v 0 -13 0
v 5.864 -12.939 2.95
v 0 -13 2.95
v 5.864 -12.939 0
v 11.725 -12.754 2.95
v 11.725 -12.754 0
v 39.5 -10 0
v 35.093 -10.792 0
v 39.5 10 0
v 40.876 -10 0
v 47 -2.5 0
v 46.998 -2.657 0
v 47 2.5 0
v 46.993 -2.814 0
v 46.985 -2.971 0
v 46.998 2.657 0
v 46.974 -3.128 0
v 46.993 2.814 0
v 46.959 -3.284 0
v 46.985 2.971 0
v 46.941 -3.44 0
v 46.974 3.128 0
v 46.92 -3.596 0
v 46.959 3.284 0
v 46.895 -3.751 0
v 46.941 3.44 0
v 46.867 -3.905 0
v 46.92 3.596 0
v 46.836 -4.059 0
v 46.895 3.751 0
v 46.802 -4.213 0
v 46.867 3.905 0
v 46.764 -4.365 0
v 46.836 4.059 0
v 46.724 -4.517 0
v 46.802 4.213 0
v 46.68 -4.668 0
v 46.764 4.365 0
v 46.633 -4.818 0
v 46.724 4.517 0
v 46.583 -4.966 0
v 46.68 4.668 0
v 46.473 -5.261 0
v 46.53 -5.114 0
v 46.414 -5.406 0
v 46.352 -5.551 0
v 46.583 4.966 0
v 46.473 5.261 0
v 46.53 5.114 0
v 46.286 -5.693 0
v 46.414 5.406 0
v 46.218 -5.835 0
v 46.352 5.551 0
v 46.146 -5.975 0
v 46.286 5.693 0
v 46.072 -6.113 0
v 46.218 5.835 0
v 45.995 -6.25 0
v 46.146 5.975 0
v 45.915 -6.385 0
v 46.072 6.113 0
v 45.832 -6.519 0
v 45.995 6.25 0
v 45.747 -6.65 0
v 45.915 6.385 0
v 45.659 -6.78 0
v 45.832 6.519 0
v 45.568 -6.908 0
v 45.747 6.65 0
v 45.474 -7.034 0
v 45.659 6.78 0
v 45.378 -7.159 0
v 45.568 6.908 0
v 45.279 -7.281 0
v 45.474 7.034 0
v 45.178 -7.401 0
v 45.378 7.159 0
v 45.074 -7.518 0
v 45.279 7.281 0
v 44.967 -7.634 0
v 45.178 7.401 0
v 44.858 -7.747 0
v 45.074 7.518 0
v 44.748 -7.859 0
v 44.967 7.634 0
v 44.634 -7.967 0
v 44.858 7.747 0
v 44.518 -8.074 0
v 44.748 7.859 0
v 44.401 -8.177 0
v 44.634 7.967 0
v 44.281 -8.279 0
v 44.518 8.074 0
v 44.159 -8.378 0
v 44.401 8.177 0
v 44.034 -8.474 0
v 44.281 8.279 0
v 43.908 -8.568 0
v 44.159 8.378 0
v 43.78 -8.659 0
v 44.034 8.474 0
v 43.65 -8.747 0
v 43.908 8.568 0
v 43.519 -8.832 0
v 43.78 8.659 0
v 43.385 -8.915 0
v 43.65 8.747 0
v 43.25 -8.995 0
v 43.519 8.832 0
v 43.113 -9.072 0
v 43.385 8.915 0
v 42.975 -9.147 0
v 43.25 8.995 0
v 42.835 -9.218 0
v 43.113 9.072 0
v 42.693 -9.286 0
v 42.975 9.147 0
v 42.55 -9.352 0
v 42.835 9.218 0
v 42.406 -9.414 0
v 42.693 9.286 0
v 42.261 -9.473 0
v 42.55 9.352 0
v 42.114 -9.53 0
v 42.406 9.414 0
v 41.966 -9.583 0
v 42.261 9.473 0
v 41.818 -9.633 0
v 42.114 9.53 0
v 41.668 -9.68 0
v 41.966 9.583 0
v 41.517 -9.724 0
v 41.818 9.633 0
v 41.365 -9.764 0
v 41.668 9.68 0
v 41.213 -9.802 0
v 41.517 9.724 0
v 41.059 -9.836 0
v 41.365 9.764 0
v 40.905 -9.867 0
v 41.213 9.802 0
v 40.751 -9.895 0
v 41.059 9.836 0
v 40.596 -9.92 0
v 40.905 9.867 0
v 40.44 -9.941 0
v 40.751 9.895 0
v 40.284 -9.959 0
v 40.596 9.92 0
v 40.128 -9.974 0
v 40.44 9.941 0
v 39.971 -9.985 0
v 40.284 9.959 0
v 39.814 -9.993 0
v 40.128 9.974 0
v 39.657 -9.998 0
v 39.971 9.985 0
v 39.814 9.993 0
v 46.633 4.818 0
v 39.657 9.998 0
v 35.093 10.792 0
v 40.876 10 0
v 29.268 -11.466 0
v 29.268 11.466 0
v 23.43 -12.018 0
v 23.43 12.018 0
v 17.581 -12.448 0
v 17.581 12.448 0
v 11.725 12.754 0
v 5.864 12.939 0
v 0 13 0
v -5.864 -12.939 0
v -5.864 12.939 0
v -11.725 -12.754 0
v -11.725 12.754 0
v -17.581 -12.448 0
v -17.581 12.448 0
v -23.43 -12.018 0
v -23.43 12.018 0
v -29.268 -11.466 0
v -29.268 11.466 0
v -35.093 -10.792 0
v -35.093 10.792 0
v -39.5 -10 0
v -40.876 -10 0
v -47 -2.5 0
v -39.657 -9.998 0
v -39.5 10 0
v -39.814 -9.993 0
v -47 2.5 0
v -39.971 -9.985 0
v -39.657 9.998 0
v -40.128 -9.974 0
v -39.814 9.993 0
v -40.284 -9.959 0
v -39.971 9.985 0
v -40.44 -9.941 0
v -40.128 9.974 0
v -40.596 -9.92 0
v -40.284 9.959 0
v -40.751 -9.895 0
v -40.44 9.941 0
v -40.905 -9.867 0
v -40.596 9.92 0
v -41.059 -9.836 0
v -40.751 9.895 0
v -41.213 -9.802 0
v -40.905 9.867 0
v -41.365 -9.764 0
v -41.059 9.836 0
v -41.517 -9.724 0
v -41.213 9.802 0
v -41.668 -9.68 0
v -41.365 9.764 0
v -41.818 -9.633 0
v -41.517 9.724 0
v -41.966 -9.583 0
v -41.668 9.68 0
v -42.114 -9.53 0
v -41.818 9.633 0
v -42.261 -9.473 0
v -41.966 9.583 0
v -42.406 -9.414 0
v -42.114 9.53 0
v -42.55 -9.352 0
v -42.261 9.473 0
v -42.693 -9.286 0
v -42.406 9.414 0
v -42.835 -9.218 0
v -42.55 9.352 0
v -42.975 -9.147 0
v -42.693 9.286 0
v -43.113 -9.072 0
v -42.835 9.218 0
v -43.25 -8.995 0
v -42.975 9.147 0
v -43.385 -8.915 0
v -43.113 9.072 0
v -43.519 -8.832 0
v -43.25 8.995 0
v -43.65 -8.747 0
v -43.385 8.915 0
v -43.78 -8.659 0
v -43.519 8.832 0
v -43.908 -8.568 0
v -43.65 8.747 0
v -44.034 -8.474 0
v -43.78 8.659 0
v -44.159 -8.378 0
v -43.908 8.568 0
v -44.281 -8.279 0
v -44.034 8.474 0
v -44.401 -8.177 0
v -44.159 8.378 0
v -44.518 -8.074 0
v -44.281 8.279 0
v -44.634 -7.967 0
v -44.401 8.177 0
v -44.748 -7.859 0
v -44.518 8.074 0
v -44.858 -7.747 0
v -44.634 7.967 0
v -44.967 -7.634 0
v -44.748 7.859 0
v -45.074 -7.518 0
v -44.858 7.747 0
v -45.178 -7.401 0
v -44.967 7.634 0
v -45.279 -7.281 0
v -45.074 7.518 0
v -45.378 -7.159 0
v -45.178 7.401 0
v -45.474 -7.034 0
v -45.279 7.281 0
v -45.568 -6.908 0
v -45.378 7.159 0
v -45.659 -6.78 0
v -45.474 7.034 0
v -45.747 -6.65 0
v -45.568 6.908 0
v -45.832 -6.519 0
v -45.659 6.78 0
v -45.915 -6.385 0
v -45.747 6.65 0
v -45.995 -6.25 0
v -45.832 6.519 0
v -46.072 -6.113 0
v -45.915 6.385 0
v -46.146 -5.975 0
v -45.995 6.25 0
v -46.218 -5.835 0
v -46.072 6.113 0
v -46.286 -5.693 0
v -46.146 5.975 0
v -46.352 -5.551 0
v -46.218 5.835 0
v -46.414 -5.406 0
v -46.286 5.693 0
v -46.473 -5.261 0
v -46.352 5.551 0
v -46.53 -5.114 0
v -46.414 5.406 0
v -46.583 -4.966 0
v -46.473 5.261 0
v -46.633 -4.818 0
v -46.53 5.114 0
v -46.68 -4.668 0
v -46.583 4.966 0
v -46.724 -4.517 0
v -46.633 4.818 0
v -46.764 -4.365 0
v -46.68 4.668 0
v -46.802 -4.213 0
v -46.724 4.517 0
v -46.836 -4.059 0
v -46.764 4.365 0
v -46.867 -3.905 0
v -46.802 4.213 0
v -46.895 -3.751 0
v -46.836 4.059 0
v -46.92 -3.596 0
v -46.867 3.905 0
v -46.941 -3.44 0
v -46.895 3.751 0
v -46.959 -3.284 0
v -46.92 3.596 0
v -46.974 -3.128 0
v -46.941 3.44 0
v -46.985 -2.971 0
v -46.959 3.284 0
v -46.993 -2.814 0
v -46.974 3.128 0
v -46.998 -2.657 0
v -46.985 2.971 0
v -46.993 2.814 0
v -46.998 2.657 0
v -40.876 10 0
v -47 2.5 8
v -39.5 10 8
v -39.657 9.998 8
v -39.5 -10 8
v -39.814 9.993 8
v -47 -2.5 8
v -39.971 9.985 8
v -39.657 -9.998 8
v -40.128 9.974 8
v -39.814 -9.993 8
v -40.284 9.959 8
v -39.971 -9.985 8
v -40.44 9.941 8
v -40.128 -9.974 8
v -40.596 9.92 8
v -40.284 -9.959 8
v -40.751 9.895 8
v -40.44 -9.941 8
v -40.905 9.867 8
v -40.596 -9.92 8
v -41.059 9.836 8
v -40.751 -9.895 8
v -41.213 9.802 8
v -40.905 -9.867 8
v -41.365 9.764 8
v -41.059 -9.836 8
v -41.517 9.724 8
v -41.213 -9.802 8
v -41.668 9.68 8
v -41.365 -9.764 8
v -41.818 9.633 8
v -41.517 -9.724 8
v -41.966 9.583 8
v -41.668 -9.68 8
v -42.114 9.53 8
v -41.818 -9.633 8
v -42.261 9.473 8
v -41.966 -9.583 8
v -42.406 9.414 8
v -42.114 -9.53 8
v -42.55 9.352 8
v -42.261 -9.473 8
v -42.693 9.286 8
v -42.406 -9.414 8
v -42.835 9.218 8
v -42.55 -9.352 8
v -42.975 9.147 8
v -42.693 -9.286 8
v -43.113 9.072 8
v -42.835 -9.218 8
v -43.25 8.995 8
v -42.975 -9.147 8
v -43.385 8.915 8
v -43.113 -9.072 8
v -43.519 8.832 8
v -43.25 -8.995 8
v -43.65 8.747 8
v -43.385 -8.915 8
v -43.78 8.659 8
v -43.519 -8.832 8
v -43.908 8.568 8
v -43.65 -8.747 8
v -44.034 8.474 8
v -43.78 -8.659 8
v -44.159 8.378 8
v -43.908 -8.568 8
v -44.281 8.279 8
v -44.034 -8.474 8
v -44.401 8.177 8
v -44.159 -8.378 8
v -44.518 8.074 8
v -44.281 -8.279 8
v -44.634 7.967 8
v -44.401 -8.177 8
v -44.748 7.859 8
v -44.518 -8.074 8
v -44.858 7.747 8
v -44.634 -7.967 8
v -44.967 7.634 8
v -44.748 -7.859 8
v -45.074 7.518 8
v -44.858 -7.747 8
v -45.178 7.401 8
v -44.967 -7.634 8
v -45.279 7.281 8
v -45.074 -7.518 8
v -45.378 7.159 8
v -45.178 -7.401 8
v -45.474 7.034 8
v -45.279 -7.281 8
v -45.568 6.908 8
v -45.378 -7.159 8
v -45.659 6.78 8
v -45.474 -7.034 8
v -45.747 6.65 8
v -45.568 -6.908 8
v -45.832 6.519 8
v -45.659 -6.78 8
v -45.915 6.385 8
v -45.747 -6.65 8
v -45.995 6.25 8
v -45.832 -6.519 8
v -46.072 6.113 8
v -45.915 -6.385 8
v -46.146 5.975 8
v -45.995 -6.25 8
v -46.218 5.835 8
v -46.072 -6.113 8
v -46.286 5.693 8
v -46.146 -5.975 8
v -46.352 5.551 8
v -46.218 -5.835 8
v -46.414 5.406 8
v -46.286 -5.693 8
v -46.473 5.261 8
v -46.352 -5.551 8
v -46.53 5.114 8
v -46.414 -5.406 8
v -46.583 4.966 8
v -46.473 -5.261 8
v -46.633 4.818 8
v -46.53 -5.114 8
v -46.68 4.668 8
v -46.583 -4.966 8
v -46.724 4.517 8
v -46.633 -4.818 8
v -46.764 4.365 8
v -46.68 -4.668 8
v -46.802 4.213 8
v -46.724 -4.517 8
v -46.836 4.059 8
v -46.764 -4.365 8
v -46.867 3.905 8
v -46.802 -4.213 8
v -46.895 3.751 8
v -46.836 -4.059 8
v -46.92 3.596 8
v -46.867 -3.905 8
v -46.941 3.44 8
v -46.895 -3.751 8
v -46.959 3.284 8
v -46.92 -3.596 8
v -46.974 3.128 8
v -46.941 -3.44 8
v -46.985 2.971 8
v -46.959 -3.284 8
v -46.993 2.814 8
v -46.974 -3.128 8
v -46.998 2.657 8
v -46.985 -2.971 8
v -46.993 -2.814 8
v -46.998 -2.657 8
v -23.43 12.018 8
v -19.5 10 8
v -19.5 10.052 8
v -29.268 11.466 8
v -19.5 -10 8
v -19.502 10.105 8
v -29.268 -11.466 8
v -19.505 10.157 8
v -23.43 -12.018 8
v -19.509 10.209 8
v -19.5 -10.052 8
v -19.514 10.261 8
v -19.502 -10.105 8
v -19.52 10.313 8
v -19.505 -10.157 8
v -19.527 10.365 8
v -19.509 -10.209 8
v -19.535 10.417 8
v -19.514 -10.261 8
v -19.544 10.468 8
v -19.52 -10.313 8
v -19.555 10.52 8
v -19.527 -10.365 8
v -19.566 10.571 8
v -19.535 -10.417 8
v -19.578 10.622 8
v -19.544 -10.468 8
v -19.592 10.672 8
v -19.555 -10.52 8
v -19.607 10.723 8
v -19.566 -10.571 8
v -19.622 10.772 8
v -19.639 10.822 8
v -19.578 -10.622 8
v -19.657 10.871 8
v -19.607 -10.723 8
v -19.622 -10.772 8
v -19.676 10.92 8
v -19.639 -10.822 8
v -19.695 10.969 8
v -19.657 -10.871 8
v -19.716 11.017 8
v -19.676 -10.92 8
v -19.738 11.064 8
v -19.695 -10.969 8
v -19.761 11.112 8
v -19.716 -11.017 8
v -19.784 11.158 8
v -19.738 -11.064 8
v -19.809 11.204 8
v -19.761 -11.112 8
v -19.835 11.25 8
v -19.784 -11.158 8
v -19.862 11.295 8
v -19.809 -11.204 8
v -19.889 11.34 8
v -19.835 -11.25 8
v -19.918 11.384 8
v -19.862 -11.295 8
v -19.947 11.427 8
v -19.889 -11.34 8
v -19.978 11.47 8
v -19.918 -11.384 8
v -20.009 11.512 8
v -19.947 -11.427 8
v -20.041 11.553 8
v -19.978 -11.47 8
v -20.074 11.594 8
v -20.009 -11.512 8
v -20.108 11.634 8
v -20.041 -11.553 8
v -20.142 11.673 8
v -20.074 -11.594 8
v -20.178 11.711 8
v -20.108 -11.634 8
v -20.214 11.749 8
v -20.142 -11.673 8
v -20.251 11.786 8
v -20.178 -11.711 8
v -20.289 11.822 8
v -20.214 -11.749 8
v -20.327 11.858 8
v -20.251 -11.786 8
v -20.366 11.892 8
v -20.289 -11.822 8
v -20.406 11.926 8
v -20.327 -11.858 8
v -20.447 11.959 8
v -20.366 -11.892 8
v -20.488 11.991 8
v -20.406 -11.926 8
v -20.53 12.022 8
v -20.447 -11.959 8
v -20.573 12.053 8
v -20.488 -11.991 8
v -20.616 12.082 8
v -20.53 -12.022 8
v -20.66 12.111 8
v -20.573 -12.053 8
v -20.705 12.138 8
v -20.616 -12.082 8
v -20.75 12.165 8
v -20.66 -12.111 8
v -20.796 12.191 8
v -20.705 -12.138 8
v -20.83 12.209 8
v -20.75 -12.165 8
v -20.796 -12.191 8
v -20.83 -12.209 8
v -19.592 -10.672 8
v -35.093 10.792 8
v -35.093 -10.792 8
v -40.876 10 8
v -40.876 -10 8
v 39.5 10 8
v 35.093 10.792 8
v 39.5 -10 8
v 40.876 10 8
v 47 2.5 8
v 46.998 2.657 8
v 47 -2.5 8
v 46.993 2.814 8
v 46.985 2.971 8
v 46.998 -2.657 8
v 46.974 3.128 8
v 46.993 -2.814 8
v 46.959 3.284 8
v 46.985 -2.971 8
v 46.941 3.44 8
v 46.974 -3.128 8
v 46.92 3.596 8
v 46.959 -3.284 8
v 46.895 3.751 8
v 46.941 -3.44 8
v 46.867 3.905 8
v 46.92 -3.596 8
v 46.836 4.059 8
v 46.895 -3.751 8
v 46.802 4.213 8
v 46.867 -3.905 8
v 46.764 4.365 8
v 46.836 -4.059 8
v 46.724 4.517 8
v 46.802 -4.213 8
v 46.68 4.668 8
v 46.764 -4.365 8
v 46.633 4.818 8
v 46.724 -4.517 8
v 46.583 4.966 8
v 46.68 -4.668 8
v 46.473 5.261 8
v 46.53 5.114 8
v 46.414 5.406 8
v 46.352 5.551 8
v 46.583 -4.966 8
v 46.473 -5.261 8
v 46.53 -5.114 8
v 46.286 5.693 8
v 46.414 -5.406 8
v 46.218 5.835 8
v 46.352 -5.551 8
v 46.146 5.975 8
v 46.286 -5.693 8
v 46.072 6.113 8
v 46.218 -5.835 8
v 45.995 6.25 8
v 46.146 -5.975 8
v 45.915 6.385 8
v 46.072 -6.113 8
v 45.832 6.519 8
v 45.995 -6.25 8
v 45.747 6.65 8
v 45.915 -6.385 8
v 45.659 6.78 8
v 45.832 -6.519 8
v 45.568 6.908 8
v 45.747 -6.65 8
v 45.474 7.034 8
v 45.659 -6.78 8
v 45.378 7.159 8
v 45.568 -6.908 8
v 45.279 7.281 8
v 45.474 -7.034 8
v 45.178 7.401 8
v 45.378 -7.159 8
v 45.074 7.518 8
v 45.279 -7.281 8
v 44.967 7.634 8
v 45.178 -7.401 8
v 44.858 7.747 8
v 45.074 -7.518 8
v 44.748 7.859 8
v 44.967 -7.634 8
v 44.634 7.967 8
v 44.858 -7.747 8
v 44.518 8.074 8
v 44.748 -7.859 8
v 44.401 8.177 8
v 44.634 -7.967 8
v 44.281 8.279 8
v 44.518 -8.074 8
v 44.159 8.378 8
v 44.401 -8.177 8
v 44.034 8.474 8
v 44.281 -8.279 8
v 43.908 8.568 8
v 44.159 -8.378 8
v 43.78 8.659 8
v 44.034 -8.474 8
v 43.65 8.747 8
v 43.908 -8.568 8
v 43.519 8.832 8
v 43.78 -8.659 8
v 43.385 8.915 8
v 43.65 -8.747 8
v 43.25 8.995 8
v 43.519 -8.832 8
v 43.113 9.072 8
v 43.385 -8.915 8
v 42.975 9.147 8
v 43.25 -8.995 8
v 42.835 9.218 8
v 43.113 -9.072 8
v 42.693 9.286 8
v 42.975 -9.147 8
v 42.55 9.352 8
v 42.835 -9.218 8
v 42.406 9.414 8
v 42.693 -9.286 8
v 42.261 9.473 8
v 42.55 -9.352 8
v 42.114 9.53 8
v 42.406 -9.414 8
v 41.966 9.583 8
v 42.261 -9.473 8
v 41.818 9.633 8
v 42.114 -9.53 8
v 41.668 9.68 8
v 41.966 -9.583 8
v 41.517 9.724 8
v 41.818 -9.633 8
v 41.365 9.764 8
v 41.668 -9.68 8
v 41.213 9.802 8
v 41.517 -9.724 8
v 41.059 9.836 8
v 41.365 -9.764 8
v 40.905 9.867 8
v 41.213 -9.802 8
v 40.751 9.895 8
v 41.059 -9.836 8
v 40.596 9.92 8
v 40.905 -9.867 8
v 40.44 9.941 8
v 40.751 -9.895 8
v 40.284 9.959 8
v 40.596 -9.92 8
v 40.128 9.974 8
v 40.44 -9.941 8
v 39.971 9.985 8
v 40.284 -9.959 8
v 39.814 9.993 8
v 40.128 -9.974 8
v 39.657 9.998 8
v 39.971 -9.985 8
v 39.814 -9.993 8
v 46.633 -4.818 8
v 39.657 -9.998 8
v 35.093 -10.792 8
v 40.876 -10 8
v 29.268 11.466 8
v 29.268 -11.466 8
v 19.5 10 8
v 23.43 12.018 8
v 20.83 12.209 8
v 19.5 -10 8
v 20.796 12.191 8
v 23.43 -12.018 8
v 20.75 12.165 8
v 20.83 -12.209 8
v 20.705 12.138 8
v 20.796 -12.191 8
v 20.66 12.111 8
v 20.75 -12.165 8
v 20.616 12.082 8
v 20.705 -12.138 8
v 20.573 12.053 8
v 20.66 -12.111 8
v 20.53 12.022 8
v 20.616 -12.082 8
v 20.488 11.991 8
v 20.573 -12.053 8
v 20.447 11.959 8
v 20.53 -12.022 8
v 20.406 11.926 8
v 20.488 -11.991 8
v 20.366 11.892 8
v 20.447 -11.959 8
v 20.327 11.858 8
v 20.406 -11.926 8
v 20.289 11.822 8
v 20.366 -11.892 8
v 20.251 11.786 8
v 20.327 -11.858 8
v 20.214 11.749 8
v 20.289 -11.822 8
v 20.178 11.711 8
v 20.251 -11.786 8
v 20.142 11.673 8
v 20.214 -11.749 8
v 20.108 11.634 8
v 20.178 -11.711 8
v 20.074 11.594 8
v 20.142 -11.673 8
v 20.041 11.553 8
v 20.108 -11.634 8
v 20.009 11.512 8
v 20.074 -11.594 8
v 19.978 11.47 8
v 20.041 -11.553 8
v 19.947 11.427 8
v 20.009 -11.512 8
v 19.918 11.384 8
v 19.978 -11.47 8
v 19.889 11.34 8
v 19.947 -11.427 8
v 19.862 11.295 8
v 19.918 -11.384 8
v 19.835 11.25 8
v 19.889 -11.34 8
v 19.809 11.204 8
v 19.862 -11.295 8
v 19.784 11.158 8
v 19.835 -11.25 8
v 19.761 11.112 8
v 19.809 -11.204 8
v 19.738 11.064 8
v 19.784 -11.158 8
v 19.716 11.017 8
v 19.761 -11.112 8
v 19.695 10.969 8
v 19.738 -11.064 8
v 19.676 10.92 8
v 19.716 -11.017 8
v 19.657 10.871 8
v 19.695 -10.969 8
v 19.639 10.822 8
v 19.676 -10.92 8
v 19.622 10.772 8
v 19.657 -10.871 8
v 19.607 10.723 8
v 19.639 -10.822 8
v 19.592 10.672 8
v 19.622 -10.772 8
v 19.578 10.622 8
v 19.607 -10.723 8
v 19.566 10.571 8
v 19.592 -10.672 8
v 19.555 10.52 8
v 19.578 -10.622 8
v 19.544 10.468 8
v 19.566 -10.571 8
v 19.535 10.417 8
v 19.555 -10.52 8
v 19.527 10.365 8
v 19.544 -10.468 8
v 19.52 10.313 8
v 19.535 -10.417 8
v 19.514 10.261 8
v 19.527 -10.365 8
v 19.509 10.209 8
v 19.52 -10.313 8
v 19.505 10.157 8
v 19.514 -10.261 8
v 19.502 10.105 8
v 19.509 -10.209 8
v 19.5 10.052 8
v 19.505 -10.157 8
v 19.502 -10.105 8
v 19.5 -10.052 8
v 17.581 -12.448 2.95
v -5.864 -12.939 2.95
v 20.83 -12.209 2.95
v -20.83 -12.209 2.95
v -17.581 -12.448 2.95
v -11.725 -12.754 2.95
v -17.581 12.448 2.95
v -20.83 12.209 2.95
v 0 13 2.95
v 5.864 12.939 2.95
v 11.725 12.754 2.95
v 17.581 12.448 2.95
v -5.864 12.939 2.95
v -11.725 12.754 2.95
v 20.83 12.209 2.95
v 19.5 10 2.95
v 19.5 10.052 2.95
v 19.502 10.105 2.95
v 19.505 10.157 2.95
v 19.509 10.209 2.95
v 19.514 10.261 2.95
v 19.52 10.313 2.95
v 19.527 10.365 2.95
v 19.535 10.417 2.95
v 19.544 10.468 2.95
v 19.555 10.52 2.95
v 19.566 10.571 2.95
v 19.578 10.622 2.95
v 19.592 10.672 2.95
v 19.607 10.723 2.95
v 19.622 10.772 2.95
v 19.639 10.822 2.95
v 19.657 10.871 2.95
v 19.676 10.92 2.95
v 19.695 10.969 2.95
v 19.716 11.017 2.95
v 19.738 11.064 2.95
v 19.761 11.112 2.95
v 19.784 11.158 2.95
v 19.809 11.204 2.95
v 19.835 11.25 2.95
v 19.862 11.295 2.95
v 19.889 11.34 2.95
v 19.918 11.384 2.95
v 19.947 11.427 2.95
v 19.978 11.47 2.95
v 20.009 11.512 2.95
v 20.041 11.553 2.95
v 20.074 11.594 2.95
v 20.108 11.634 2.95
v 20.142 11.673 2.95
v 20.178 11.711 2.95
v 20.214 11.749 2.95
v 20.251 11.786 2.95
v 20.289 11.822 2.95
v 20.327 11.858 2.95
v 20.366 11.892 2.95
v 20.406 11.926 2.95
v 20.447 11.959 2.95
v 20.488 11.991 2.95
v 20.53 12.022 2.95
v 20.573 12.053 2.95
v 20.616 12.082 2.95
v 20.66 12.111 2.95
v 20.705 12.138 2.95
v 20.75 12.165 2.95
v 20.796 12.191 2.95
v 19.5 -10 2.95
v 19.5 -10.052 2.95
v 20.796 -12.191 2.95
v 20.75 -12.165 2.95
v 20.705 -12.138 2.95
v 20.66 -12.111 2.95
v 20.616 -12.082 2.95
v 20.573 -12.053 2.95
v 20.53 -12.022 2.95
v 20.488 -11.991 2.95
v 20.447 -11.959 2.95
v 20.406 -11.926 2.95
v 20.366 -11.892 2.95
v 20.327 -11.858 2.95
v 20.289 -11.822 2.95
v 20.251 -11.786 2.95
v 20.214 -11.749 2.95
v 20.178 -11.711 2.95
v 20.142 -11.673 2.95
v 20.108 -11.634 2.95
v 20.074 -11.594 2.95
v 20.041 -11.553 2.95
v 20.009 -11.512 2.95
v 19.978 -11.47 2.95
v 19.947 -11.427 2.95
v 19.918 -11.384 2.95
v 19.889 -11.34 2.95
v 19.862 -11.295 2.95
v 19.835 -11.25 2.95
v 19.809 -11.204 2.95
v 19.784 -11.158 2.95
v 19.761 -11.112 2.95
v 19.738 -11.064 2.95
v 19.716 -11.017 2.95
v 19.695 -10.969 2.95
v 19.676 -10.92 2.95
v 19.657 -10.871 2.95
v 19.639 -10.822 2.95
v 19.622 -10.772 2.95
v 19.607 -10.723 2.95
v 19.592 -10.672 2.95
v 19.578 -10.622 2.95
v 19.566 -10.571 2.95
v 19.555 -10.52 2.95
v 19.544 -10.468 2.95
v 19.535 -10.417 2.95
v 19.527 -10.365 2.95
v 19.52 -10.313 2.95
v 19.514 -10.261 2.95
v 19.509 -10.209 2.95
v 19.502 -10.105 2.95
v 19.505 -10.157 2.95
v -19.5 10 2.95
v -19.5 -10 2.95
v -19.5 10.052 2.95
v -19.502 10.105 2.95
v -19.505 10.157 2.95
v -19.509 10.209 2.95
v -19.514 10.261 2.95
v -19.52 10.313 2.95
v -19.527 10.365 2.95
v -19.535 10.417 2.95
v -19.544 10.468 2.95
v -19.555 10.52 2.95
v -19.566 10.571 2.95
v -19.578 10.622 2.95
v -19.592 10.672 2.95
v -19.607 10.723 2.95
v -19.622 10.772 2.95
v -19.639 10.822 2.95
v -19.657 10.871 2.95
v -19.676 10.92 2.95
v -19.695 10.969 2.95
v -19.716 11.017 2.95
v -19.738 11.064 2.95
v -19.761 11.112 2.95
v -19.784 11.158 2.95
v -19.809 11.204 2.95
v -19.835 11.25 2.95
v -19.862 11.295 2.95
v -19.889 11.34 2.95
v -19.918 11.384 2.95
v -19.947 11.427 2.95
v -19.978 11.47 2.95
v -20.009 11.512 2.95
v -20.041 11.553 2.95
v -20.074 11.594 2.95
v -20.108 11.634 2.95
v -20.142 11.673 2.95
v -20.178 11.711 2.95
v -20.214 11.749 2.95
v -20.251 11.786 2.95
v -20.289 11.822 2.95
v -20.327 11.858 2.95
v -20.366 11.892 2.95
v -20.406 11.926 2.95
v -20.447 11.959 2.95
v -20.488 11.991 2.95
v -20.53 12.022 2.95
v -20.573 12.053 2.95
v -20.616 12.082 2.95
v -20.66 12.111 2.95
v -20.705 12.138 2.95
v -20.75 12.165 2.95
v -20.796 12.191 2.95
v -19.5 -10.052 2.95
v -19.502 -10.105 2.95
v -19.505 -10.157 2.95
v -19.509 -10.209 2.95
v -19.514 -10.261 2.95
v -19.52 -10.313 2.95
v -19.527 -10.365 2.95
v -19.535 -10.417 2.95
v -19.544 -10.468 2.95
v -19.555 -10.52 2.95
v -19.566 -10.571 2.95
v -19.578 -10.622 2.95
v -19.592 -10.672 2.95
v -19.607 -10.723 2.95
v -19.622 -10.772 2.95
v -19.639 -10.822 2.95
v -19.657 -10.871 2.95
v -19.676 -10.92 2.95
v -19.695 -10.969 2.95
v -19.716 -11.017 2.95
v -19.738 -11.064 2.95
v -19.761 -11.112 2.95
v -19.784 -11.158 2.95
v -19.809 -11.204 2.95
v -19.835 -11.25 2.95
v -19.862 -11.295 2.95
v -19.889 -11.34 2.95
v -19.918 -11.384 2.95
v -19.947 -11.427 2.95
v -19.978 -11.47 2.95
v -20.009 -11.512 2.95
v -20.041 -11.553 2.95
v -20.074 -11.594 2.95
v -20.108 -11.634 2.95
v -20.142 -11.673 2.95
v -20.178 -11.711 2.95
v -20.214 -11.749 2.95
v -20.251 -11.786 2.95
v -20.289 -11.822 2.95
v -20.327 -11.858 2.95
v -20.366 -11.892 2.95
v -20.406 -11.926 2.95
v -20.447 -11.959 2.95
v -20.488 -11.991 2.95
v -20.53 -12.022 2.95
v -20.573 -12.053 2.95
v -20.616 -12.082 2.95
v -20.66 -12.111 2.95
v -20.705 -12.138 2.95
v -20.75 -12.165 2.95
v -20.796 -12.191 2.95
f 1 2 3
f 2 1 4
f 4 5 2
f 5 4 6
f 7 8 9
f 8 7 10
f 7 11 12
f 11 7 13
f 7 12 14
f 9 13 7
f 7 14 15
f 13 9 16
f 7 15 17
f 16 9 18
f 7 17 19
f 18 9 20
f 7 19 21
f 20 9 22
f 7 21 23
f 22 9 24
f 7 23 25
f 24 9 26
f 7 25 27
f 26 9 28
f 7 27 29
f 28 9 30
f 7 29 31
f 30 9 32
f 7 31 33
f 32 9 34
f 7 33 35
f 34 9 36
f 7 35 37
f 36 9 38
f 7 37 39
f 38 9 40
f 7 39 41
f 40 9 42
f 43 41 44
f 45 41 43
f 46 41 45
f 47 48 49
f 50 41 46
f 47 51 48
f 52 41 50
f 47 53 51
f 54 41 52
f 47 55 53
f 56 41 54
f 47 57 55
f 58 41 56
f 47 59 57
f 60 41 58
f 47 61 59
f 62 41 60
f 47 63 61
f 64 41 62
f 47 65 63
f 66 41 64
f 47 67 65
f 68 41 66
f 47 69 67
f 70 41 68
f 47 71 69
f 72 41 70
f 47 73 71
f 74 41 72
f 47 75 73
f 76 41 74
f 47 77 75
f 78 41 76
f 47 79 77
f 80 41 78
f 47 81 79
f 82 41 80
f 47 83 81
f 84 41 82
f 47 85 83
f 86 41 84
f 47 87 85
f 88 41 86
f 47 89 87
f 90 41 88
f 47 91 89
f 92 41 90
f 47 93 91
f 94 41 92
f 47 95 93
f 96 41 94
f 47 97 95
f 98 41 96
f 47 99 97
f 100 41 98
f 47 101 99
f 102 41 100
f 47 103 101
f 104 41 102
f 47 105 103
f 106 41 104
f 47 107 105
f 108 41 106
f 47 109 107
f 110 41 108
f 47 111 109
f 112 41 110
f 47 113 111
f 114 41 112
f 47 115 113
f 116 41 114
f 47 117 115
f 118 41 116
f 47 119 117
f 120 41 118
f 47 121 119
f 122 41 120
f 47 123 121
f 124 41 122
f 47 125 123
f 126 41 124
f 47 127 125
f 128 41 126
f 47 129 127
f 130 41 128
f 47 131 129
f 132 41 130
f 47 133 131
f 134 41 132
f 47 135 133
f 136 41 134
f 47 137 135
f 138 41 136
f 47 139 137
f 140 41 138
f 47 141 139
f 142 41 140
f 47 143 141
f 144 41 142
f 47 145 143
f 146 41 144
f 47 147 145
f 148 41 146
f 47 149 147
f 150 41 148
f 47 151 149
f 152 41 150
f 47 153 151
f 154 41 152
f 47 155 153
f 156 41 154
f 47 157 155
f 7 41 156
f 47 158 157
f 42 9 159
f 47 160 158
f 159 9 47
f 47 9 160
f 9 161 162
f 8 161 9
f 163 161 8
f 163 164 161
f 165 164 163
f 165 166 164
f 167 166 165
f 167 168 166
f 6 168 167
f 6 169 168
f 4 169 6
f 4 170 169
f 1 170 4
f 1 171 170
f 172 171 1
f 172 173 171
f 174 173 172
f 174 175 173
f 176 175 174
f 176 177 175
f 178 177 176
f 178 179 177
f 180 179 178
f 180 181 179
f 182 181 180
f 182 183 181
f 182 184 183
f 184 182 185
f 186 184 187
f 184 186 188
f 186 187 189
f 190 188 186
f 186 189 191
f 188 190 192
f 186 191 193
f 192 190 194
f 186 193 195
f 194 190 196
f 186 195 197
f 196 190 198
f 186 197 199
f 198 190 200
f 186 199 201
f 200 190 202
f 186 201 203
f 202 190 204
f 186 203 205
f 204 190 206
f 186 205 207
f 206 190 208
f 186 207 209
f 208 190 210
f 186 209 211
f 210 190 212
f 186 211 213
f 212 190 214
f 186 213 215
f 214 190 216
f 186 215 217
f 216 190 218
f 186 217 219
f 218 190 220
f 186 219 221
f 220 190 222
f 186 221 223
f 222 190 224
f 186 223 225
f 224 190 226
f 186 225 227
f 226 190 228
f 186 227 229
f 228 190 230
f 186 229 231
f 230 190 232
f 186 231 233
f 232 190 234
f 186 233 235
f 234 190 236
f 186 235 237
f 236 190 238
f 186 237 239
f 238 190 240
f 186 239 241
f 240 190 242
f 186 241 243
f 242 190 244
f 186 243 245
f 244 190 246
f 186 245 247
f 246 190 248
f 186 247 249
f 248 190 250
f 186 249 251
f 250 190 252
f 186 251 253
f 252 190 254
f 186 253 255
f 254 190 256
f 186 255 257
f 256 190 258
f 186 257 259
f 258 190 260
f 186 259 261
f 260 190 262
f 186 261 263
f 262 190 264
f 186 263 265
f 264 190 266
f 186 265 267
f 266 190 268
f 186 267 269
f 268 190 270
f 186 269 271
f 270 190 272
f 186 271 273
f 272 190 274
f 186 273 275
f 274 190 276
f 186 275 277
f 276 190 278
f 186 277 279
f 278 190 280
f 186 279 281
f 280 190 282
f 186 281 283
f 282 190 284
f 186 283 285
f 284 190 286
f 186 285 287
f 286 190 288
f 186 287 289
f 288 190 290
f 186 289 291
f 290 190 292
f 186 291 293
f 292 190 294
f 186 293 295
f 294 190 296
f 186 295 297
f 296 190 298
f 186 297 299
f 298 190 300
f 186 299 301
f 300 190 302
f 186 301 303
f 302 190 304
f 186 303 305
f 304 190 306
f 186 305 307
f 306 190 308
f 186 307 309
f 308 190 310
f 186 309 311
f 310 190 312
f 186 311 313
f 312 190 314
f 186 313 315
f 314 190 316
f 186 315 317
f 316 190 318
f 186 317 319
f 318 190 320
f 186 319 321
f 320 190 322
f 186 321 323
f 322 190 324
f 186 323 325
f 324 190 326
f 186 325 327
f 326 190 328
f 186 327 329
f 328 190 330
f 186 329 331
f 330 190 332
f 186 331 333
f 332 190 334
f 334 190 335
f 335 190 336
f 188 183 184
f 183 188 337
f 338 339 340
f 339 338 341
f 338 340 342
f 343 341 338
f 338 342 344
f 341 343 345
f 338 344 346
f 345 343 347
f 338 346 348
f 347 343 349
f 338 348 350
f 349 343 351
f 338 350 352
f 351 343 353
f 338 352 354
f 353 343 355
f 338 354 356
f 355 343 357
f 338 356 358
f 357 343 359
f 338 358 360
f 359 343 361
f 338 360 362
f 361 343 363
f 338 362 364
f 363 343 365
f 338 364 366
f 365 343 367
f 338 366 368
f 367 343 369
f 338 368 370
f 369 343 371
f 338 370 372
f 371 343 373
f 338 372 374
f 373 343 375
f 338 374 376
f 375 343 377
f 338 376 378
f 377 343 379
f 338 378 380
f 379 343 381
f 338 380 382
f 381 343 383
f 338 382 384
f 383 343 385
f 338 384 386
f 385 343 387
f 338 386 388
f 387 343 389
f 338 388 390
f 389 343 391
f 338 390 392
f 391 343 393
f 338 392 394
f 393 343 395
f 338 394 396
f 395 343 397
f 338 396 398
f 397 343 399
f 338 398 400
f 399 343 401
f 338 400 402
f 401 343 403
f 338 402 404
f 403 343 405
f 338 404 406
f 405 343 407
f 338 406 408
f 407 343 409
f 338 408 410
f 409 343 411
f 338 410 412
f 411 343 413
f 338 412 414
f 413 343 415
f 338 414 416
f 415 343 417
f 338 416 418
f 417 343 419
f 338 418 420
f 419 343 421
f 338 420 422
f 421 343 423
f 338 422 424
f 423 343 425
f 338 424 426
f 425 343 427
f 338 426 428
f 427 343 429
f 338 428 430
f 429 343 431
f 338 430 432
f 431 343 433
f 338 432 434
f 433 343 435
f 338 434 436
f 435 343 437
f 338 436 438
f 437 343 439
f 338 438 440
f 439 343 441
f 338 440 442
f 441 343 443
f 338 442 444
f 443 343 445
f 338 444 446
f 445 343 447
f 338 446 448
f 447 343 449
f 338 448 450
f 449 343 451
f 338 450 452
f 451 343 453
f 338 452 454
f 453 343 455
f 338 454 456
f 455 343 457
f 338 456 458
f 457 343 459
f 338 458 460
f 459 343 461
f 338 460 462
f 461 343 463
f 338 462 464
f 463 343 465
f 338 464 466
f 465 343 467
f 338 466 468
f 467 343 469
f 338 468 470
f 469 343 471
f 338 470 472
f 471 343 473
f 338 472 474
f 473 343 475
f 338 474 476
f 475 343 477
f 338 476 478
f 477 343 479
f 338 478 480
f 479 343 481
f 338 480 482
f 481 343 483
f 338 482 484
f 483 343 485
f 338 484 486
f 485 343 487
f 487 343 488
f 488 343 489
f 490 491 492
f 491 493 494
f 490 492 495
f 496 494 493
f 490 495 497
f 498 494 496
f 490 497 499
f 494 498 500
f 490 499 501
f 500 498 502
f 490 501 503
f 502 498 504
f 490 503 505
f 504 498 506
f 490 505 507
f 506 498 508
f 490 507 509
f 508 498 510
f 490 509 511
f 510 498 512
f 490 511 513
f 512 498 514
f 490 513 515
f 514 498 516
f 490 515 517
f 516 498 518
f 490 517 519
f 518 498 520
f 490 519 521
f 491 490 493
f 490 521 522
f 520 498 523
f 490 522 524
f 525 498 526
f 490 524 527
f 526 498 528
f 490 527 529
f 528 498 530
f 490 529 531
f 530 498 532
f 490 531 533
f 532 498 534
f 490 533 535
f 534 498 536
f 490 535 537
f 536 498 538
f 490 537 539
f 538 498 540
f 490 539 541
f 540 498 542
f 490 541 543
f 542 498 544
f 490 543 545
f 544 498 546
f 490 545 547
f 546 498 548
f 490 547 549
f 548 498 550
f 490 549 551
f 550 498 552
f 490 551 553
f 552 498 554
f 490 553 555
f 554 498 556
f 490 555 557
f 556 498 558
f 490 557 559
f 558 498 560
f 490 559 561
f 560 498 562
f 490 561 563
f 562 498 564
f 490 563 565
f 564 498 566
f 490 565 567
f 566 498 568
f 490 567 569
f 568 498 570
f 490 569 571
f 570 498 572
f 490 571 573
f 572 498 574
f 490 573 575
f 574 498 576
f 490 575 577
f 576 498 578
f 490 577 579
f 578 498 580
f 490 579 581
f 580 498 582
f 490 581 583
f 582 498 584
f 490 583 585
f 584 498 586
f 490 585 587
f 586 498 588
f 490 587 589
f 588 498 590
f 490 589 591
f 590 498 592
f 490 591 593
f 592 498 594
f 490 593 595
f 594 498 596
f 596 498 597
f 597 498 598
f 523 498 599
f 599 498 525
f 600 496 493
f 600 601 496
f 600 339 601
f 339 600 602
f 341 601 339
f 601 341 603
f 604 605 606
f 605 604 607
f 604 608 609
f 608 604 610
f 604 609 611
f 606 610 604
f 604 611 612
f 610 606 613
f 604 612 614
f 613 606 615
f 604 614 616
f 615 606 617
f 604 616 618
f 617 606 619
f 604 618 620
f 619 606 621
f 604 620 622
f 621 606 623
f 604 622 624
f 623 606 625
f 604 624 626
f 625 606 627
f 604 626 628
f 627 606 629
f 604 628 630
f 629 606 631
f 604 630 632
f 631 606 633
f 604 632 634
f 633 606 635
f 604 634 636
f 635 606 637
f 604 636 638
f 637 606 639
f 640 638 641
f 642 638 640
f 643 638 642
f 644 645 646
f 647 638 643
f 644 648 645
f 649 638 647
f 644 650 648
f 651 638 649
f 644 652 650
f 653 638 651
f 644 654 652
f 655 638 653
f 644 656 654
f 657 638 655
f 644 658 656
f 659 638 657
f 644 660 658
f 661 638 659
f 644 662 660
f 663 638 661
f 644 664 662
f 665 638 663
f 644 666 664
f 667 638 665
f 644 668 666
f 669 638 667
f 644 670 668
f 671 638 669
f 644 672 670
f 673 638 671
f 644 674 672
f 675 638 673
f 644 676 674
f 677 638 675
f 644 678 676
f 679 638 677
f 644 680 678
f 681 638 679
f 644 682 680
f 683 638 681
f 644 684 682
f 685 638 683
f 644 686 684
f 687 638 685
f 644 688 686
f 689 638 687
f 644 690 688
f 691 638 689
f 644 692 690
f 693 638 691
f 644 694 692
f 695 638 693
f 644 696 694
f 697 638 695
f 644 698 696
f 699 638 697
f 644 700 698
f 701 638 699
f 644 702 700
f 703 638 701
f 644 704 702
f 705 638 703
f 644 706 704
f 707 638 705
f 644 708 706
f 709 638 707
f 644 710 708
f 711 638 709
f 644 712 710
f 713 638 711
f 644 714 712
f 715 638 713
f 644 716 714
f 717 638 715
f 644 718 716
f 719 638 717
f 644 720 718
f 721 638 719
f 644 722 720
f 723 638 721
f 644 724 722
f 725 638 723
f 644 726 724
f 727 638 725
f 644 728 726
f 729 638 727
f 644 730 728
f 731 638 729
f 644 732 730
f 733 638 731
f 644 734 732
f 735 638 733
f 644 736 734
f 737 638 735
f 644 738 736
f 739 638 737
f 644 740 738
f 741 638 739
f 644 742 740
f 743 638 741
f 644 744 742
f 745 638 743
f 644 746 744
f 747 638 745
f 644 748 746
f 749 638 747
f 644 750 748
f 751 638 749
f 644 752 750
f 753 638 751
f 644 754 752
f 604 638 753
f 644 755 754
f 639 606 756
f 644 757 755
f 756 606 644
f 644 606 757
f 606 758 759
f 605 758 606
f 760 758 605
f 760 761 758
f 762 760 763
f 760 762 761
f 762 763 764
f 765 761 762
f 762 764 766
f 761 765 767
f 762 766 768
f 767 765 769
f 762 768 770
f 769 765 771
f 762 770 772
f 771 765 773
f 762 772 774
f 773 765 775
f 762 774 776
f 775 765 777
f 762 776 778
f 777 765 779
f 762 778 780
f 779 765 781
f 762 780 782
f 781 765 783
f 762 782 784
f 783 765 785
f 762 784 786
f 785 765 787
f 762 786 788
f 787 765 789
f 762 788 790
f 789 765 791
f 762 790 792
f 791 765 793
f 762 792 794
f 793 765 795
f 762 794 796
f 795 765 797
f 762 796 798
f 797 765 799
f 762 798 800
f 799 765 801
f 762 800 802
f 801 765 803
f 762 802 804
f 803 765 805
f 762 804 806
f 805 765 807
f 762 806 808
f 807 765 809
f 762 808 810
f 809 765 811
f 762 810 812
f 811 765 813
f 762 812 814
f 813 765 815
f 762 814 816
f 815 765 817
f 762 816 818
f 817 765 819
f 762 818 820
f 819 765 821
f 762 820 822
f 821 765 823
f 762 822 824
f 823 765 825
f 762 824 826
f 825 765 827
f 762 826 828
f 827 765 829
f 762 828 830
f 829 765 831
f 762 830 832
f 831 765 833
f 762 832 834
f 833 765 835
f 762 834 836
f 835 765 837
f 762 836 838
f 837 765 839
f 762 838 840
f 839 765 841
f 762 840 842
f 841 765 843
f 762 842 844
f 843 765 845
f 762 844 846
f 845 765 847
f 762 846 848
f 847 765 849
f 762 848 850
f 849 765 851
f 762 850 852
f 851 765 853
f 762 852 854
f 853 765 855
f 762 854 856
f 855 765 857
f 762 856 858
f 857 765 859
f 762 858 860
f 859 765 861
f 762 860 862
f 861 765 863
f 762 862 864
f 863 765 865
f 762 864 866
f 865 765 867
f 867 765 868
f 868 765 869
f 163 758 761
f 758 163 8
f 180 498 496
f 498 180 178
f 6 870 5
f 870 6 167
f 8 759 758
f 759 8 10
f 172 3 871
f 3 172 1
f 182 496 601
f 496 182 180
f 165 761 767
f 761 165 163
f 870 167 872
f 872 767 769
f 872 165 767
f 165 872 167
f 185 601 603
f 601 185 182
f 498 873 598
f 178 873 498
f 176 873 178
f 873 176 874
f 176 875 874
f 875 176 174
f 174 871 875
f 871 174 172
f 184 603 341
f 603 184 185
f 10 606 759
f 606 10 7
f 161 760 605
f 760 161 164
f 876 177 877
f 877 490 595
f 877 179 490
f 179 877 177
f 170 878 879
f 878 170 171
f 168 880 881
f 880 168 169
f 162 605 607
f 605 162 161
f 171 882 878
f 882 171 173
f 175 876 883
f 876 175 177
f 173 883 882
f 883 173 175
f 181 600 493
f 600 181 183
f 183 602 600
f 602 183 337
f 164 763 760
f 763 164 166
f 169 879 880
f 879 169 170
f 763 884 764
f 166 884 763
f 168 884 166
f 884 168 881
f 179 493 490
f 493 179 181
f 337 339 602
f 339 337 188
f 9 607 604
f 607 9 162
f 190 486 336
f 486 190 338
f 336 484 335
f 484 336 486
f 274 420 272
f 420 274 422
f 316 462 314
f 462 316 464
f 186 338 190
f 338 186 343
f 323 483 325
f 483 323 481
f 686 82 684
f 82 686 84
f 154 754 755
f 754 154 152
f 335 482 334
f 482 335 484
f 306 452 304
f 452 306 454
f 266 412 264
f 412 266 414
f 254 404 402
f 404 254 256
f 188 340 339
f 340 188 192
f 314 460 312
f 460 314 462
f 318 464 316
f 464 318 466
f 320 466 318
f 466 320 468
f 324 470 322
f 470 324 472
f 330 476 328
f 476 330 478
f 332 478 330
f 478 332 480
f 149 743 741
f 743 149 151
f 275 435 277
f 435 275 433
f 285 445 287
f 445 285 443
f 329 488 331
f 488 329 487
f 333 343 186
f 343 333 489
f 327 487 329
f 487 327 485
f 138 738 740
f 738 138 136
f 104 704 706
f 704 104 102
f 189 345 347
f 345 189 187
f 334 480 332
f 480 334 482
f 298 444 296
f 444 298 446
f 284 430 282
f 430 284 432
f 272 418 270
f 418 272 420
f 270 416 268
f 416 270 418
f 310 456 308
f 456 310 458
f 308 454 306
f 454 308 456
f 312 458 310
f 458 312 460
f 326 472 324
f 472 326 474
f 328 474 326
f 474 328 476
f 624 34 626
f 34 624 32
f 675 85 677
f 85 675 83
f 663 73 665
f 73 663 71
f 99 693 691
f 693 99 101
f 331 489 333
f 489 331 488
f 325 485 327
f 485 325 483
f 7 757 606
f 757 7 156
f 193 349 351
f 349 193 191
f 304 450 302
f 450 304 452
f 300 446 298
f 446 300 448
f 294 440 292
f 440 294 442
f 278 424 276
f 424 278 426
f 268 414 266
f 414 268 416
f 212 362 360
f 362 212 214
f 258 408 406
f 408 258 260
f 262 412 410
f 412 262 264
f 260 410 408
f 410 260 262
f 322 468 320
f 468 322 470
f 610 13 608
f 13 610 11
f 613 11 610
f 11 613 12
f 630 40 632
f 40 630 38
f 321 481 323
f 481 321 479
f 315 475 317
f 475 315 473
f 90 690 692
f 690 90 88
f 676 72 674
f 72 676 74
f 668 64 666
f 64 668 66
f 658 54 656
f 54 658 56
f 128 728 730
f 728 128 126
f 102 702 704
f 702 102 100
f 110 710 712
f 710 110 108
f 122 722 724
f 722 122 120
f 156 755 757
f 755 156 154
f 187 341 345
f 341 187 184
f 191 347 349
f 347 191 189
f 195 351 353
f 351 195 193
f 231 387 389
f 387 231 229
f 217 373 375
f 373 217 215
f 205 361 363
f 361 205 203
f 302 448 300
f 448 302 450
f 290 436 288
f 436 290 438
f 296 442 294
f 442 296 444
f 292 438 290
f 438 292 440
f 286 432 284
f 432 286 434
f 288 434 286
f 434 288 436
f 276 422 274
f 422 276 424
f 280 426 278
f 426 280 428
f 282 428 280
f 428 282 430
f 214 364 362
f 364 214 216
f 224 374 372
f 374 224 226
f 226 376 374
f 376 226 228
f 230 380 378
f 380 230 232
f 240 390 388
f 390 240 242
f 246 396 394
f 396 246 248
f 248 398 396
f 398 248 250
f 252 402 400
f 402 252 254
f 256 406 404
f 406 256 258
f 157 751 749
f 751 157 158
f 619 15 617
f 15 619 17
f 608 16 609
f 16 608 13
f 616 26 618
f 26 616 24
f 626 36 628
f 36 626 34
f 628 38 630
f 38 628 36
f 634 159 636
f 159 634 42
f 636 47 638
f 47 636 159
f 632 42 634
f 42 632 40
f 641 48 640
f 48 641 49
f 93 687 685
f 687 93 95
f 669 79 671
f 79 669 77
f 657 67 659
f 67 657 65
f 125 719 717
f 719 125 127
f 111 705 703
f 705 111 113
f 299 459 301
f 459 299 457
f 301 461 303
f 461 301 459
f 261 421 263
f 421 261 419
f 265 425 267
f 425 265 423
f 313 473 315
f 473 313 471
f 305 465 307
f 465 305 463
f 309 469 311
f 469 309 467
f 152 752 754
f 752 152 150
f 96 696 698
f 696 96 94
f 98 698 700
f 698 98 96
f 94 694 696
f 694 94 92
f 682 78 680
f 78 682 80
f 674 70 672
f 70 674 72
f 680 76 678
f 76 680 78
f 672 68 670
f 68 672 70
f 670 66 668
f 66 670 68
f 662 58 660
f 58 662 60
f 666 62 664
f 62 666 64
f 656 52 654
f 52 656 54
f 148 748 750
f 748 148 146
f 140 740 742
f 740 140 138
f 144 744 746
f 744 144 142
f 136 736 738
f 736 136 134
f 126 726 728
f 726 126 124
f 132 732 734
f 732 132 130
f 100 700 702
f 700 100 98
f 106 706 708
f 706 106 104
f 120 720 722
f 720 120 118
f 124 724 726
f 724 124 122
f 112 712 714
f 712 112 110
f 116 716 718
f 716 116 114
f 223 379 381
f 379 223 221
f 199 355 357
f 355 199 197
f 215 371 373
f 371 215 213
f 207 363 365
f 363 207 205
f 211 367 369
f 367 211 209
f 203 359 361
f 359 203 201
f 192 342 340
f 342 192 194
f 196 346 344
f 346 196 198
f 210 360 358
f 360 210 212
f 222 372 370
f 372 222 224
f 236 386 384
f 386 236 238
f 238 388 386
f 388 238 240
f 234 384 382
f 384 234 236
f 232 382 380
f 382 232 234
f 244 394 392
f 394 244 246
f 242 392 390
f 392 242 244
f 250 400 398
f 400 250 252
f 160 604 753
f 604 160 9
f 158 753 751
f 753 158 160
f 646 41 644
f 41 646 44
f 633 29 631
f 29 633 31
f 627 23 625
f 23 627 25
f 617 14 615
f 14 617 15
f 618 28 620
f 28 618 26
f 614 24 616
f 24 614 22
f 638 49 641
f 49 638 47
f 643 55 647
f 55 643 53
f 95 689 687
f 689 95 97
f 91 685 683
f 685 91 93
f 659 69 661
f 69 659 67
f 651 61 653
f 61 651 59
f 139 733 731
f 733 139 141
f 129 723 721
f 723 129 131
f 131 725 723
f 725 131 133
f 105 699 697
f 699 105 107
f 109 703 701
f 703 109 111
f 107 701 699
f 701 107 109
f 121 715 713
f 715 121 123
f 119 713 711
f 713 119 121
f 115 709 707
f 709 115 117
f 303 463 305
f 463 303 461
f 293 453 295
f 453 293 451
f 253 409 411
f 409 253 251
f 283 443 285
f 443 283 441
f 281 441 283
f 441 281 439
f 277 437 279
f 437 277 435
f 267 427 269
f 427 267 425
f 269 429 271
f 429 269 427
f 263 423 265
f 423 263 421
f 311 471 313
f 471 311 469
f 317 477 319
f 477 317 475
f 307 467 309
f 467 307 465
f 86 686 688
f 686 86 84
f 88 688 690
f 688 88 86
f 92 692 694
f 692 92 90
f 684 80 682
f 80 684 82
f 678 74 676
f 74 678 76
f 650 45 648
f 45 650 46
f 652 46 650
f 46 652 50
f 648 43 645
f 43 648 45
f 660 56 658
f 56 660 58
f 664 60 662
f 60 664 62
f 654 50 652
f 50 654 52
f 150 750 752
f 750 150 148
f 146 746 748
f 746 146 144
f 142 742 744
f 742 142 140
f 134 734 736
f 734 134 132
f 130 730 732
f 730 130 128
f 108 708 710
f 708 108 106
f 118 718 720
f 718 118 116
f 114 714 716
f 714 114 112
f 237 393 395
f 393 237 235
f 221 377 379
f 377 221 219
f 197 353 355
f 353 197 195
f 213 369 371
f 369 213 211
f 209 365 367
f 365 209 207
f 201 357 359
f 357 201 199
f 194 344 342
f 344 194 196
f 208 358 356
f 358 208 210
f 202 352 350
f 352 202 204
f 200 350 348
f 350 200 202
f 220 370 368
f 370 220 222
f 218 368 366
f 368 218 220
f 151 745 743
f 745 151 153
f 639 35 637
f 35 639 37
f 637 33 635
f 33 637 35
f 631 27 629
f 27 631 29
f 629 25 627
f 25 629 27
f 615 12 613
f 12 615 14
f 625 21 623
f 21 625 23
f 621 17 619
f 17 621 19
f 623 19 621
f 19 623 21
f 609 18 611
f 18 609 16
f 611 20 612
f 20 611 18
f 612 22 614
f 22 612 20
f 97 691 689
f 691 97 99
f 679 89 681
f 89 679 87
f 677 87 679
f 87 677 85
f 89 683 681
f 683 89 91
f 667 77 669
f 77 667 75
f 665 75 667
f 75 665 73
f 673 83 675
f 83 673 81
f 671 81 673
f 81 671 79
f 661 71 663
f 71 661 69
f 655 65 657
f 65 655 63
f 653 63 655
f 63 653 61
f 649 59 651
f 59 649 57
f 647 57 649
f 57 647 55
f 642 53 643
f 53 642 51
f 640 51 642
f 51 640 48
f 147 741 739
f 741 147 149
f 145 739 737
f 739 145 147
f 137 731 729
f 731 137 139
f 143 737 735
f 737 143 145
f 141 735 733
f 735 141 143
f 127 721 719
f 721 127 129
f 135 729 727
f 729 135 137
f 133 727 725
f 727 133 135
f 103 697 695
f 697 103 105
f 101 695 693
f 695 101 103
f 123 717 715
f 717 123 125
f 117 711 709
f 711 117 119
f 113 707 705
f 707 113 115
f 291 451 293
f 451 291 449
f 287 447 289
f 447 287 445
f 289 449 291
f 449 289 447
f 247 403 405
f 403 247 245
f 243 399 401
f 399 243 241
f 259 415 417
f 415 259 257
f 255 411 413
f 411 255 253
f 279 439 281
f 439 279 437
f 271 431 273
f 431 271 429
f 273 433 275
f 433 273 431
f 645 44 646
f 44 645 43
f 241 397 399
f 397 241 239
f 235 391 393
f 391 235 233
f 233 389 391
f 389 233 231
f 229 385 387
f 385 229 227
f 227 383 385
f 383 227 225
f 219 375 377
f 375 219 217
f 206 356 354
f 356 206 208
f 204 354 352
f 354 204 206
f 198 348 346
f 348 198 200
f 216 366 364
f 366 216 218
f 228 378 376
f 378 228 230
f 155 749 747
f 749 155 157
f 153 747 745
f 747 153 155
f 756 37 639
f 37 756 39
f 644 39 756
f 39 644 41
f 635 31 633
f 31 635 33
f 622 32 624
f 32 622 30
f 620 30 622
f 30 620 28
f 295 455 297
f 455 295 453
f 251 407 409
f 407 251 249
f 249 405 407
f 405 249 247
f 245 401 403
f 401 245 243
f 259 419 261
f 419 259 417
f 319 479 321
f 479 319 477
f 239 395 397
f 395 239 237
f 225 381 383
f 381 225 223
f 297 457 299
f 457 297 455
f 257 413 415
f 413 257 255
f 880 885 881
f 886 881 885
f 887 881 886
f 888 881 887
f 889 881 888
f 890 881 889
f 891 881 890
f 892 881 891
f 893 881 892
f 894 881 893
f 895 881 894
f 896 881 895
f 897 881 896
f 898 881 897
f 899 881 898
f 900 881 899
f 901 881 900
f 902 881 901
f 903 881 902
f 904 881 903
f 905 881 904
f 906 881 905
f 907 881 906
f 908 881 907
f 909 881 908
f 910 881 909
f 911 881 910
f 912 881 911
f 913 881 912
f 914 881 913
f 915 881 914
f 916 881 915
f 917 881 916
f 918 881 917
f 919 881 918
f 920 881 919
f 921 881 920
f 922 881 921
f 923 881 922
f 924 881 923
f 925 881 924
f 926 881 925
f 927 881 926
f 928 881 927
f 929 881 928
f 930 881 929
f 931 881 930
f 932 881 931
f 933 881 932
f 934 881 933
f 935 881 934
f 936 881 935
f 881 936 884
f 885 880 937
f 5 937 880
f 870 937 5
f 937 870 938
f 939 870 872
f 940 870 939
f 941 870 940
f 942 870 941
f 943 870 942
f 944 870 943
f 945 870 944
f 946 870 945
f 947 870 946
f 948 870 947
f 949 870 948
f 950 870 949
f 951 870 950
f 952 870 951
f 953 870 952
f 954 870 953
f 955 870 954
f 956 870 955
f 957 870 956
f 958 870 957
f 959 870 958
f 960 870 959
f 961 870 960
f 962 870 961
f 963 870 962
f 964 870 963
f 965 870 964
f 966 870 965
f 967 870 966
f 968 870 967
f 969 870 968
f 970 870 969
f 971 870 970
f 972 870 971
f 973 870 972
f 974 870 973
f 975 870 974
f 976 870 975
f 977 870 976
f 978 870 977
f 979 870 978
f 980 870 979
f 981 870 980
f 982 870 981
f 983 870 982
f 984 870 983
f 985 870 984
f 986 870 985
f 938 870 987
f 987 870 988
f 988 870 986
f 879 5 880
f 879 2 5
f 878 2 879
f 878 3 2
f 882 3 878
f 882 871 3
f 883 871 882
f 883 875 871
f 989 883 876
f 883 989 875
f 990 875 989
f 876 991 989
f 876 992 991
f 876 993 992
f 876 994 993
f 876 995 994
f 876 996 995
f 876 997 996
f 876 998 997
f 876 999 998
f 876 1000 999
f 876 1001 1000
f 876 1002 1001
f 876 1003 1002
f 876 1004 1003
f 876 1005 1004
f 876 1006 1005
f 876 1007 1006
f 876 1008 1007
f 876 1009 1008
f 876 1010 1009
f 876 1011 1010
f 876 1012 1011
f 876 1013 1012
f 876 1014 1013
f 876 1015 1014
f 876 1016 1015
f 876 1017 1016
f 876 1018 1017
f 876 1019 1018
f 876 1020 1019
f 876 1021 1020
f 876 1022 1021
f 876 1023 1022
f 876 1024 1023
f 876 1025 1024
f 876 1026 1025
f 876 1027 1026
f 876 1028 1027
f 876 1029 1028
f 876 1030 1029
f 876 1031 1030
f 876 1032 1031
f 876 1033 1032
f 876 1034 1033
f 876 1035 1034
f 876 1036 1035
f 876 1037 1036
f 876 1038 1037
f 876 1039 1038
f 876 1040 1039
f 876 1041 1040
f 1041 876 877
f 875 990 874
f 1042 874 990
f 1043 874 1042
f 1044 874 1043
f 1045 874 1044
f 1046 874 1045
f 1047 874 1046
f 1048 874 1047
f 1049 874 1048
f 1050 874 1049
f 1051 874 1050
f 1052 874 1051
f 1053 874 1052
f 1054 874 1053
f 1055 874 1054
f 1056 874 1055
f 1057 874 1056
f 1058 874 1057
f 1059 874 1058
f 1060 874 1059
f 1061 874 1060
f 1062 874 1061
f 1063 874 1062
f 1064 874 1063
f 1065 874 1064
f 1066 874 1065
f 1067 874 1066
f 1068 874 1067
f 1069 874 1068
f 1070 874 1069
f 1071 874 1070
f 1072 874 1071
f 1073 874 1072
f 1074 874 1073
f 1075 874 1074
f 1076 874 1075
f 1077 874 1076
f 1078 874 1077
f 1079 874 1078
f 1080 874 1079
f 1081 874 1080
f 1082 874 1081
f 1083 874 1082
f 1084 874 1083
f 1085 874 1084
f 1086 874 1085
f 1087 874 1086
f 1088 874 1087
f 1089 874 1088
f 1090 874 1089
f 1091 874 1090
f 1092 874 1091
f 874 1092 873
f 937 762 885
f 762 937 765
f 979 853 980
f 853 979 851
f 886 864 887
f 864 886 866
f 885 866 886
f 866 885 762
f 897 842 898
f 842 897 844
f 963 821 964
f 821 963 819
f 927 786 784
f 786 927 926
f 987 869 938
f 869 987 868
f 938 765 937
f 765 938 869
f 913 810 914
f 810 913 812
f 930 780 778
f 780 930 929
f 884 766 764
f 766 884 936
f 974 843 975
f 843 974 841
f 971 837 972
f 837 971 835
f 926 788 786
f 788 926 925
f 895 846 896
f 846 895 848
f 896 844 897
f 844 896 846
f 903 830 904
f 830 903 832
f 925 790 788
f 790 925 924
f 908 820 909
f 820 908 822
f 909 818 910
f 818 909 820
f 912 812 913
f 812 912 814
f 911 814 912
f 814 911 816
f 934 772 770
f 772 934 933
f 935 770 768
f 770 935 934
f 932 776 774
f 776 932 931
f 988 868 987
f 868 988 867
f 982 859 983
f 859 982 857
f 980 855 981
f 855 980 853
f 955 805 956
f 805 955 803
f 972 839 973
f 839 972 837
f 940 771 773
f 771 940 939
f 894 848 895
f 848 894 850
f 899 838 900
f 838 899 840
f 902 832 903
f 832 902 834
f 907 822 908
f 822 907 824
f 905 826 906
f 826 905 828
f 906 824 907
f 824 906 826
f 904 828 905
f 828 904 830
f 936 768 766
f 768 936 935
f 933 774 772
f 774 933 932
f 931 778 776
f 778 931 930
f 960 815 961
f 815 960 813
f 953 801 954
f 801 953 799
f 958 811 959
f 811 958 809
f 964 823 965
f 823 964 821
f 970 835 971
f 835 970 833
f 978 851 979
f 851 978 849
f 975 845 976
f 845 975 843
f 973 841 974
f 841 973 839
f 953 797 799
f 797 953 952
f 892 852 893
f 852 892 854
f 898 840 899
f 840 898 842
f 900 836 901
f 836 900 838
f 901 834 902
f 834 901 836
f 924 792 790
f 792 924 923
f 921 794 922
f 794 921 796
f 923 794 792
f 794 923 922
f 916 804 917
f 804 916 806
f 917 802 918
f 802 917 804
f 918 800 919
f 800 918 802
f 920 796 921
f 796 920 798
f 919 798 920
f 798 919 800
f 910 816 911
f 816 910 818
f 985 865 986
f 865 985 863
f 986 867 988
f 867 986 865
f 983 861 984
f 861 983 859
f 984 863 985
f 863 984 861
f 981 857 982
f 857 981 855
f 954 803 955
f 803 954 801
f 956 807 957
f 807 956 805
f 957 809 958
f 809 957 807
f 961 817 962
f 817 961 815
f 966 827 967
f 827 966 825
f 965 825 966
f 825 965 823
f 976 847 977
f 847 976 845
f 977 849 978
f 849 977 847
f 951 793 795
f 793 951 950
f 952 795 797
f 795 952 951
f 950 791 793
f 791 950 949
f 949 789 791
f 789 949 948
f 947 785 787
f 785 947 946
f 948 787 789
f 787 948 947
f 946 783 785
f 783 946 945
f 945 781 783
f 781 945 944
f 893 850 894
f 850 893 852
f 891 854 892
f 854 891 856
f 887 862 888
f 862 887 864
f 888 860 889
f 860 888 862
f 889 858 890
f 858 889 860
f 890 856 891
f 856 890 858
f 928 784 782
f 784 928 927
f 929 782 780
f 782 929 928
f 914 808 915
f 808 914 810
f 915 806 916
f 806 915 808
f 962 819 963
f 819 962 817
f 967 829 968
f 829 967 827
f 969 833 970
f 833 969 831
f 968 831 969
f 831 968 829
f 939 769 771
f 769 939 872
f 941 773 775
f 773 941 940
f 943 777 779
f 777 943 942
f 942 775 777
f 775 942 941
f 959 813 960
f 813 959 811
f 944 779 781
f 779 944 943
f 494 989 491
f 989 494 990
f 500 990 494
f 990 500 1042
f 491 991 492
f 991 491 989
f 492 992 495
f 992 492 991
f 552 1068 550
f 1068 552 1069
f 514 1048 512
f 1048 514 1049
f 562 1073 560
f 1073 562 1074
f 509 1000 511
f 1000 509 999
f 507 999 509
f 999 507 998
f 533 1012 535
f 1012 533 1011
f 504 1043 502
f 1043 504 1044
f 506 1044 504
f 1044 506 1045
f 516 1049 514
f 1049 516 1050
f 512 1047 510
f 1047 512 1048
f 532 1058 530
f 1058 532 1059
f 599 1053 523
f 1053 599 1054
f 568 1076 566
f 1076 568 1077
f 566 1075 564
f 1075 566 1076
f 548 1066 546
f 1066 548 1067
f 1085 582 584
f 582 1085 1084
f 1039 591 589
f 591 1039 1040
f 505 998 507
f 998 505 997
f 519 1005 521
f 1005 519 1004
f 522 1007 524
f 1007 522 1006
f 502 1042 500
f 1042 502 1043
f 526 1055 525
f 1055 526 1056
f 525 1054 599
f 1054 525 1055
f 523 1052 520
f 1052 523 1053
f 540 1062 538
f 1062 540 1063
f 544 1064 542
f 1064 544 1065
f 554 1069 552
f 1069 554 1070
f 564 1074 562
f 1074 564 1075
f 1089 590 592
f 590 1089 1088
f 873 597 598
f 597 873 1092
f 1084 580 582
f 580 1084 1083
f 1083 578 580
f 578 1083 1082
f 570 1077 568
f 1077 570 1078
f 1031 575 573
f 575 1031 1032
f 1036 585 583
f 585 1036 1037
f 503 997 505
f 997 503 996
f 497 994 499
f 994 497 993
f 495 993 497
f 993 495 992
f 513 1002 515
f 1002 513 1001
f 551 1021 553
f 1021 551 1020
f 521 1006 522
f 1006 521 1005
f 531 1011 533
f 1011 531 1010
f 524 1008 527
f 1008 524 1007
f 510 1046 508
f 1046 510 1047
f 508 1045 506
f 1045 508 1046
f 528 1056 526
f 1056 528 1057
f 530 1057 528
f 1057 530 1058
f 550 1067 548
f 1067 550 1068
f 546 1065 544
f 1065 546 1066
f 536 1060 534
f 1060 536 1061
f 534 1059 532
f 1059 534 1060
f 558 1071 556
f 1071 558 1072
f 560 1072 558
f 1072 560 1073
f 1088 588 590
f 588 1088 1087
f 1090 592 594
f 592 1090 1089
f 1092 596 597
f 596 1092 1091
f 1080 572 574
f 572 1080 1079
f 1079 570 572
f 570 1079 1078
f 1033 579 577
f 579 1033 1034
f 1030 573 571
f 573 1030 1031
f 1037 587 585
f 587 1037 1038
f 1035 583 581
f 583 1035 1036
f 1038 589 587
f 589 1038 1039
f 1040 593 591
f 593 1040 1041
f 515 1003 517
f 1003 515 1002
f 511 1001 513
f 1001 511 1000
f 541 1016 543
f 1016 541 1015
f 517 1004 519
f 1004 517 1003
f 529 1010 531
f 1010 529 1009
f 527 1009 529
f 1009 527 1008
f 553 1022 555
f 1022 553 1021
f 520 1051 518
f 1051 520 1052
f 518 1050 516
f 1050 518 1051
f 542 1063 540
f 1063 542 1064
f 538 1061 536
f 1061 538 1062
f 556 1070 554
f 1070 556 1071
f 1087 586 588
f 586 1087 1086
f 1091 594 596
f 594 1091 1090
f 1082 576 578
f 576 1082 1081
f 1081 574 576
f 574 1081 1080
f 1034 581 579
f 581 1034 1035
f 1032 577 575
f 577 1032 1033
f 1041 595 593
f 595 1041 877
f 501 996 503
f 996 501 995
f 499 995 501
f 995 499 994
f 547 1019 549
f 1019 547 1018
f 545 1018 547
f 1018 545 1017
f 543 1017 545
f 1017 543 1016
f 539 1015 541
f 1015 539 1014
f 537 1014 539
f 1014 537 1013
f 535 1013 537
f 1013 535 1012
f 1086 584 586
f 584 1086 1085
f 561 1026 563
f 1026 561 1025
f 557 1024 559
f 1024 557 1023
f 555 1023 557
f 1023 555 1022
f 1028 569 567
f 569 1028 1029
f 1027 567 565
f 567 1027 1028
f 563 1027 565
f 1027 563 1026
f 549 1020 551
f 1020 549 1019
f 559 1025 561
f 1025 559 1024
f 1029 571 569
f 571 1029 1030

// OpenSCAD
$fn=300*1.0;

length = 94;
center_width = 26;
end_width = 20;
height = 8;
height_center = 3;
center_length = 39;
end_radius = 15;
centner_radius = 280;
inner_radius=5;


module bottom()
{
    difference()
    {
        union()
        {
            translate([0,0,height/2]) minkowski()
            {
                cube([length-end_radius,end_width-end_radius,height/2],center=true);
                cylinder(r=end_radius/2,h=height/2,center=true);
            }
            difference()
            {
                translate([0,centner_radius-center_width/2,height/2]) cylinder(r=centner_radius,h=height,center=true);
                translate([0,centner_radius-end_width/2,height/2]) cube([centner_radius*2,centner_radius*2,height+1],center=true);
            }
            difference()
            {
                translate([0,-centner_radius+center_width/2,height/2]) cylinder(r=centner_radius,h=height,center=true);
                translate([0,-centner_radius+end_width/2,height/2]) cube([centner_radius*2,centner_radius*2,height+1],center=true);
            }
        }
        translate([0,0,(height+height_center)/2]) difference()
        {
            cube([center_length+20,center_width,0.1+height-height_center],center=true);
            translate([(center_length+center_width)/2,0,0]) minkowski()
            {
                cube([center_width-inner_radius,center_width-inner_radius-1,height/2],center=true);
                cylinder(r=inner_radius/2,h=height/2,center=true);
            }
            translate([-(center_length+center_width)/2,0,0]) minkowski()
            {
                cube([center_width-inner_radius,center_width-inner_radius-1,height/2],center=true);
                cylinder(r=inner_radius/2,h=height/2,center=true);
            }
        }
    }
    
}

bottom();
